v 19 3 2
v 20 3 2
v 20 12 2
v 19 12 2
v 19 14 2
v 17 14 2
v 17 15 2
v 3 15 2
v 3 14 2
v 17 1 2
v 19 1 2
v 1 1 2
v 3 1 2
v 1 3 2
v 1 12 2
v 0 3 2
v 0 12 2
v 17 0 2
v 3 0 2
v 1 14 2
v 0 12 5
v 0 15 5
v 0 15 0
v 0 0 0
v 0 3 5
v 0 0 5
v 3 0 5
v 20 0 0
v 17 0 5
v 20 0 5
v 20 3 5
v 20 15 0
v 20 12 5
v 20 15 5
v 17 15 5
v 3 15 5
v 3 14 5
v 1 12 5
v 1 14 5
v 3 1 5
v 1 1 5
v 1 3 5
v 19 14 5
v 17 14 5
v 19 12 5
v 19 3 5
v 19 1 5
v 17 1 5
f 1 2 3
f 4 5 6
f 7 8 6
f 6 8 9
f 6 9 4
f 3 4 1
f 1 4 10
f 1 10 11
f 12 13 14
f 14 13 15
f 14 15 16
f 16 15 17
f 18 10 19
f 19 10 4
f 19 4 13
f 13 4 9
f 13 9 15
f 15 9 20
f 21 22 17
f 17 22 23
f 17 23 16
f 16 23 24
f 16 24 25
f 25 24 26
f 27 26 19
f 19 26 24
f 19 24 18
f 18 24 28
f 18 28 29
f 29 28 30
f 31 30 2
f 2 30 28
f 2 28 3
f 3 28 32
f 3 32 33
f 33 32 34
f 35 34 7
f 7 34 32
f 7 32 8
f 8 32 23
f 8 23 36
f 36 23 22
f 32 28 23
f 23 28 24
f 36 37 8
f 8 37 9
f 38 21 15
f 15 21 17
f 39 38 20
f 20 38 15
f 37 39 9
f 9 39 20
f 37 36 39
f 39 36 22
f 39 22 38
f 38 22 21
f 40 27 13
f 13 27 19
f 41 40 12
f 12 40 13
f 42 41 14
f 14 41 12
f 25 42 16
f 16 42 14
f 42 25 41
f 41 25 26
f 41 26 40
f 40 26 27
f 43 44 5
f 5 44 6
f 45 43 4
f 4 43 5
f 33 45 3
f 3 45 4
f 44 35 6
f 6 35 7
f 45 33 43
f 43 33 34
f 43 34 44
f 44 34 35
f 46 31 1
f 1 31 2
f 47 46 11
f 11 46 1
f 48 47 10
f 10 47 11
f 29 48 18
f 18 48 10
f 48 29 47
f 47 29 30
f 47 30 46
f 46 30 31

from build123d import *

# Parameters (mm, degrees)
SKETCH1_W           = 20
SKETCH1_H           = 15
BOSS_EXTRUDE2_DEPTH = 2
BOSS_EXTRUDE3_DEPTH = 3


with BuildPart() as part:
    # Sketch1 → Boss-Extrude2 (new body)
    with BuildSketch(Plane.XY):
        with Locations((10, 7.5)):
            Rectangle(SKETCH1_W, SKETCH1_H)
    extrude(amount=BOSS_EXTRUDE2_DEPTH)

    # Sketch2 → Boss-Extrude3 (add)
    with BuildSketch(Plane.XY.offset(2)):
        Polygon((1, 15), (0, 15), (0, 14), (0, 12), (1, 12), (1, 14), (3, 14), (3, 15), align=None)
        Polygon((1, 3), (0, 3), (0, 1), (0, 0), (1, 0), (3, 0), (3, 1), (1, 1), align=None)
        Polygon((19, 15), (17, 15), (17, 14), (19, 14), (19, 12), (20, 12), (20, 14), (20, 15), align=None)
        Polygon((20, 0), (17, 0), (17, 1), (19, 1), (19, 3), (20, 3), align=None)
    extrude(amount=BOSS_EXTRUDE3_DEPTH)


solid = part.part
